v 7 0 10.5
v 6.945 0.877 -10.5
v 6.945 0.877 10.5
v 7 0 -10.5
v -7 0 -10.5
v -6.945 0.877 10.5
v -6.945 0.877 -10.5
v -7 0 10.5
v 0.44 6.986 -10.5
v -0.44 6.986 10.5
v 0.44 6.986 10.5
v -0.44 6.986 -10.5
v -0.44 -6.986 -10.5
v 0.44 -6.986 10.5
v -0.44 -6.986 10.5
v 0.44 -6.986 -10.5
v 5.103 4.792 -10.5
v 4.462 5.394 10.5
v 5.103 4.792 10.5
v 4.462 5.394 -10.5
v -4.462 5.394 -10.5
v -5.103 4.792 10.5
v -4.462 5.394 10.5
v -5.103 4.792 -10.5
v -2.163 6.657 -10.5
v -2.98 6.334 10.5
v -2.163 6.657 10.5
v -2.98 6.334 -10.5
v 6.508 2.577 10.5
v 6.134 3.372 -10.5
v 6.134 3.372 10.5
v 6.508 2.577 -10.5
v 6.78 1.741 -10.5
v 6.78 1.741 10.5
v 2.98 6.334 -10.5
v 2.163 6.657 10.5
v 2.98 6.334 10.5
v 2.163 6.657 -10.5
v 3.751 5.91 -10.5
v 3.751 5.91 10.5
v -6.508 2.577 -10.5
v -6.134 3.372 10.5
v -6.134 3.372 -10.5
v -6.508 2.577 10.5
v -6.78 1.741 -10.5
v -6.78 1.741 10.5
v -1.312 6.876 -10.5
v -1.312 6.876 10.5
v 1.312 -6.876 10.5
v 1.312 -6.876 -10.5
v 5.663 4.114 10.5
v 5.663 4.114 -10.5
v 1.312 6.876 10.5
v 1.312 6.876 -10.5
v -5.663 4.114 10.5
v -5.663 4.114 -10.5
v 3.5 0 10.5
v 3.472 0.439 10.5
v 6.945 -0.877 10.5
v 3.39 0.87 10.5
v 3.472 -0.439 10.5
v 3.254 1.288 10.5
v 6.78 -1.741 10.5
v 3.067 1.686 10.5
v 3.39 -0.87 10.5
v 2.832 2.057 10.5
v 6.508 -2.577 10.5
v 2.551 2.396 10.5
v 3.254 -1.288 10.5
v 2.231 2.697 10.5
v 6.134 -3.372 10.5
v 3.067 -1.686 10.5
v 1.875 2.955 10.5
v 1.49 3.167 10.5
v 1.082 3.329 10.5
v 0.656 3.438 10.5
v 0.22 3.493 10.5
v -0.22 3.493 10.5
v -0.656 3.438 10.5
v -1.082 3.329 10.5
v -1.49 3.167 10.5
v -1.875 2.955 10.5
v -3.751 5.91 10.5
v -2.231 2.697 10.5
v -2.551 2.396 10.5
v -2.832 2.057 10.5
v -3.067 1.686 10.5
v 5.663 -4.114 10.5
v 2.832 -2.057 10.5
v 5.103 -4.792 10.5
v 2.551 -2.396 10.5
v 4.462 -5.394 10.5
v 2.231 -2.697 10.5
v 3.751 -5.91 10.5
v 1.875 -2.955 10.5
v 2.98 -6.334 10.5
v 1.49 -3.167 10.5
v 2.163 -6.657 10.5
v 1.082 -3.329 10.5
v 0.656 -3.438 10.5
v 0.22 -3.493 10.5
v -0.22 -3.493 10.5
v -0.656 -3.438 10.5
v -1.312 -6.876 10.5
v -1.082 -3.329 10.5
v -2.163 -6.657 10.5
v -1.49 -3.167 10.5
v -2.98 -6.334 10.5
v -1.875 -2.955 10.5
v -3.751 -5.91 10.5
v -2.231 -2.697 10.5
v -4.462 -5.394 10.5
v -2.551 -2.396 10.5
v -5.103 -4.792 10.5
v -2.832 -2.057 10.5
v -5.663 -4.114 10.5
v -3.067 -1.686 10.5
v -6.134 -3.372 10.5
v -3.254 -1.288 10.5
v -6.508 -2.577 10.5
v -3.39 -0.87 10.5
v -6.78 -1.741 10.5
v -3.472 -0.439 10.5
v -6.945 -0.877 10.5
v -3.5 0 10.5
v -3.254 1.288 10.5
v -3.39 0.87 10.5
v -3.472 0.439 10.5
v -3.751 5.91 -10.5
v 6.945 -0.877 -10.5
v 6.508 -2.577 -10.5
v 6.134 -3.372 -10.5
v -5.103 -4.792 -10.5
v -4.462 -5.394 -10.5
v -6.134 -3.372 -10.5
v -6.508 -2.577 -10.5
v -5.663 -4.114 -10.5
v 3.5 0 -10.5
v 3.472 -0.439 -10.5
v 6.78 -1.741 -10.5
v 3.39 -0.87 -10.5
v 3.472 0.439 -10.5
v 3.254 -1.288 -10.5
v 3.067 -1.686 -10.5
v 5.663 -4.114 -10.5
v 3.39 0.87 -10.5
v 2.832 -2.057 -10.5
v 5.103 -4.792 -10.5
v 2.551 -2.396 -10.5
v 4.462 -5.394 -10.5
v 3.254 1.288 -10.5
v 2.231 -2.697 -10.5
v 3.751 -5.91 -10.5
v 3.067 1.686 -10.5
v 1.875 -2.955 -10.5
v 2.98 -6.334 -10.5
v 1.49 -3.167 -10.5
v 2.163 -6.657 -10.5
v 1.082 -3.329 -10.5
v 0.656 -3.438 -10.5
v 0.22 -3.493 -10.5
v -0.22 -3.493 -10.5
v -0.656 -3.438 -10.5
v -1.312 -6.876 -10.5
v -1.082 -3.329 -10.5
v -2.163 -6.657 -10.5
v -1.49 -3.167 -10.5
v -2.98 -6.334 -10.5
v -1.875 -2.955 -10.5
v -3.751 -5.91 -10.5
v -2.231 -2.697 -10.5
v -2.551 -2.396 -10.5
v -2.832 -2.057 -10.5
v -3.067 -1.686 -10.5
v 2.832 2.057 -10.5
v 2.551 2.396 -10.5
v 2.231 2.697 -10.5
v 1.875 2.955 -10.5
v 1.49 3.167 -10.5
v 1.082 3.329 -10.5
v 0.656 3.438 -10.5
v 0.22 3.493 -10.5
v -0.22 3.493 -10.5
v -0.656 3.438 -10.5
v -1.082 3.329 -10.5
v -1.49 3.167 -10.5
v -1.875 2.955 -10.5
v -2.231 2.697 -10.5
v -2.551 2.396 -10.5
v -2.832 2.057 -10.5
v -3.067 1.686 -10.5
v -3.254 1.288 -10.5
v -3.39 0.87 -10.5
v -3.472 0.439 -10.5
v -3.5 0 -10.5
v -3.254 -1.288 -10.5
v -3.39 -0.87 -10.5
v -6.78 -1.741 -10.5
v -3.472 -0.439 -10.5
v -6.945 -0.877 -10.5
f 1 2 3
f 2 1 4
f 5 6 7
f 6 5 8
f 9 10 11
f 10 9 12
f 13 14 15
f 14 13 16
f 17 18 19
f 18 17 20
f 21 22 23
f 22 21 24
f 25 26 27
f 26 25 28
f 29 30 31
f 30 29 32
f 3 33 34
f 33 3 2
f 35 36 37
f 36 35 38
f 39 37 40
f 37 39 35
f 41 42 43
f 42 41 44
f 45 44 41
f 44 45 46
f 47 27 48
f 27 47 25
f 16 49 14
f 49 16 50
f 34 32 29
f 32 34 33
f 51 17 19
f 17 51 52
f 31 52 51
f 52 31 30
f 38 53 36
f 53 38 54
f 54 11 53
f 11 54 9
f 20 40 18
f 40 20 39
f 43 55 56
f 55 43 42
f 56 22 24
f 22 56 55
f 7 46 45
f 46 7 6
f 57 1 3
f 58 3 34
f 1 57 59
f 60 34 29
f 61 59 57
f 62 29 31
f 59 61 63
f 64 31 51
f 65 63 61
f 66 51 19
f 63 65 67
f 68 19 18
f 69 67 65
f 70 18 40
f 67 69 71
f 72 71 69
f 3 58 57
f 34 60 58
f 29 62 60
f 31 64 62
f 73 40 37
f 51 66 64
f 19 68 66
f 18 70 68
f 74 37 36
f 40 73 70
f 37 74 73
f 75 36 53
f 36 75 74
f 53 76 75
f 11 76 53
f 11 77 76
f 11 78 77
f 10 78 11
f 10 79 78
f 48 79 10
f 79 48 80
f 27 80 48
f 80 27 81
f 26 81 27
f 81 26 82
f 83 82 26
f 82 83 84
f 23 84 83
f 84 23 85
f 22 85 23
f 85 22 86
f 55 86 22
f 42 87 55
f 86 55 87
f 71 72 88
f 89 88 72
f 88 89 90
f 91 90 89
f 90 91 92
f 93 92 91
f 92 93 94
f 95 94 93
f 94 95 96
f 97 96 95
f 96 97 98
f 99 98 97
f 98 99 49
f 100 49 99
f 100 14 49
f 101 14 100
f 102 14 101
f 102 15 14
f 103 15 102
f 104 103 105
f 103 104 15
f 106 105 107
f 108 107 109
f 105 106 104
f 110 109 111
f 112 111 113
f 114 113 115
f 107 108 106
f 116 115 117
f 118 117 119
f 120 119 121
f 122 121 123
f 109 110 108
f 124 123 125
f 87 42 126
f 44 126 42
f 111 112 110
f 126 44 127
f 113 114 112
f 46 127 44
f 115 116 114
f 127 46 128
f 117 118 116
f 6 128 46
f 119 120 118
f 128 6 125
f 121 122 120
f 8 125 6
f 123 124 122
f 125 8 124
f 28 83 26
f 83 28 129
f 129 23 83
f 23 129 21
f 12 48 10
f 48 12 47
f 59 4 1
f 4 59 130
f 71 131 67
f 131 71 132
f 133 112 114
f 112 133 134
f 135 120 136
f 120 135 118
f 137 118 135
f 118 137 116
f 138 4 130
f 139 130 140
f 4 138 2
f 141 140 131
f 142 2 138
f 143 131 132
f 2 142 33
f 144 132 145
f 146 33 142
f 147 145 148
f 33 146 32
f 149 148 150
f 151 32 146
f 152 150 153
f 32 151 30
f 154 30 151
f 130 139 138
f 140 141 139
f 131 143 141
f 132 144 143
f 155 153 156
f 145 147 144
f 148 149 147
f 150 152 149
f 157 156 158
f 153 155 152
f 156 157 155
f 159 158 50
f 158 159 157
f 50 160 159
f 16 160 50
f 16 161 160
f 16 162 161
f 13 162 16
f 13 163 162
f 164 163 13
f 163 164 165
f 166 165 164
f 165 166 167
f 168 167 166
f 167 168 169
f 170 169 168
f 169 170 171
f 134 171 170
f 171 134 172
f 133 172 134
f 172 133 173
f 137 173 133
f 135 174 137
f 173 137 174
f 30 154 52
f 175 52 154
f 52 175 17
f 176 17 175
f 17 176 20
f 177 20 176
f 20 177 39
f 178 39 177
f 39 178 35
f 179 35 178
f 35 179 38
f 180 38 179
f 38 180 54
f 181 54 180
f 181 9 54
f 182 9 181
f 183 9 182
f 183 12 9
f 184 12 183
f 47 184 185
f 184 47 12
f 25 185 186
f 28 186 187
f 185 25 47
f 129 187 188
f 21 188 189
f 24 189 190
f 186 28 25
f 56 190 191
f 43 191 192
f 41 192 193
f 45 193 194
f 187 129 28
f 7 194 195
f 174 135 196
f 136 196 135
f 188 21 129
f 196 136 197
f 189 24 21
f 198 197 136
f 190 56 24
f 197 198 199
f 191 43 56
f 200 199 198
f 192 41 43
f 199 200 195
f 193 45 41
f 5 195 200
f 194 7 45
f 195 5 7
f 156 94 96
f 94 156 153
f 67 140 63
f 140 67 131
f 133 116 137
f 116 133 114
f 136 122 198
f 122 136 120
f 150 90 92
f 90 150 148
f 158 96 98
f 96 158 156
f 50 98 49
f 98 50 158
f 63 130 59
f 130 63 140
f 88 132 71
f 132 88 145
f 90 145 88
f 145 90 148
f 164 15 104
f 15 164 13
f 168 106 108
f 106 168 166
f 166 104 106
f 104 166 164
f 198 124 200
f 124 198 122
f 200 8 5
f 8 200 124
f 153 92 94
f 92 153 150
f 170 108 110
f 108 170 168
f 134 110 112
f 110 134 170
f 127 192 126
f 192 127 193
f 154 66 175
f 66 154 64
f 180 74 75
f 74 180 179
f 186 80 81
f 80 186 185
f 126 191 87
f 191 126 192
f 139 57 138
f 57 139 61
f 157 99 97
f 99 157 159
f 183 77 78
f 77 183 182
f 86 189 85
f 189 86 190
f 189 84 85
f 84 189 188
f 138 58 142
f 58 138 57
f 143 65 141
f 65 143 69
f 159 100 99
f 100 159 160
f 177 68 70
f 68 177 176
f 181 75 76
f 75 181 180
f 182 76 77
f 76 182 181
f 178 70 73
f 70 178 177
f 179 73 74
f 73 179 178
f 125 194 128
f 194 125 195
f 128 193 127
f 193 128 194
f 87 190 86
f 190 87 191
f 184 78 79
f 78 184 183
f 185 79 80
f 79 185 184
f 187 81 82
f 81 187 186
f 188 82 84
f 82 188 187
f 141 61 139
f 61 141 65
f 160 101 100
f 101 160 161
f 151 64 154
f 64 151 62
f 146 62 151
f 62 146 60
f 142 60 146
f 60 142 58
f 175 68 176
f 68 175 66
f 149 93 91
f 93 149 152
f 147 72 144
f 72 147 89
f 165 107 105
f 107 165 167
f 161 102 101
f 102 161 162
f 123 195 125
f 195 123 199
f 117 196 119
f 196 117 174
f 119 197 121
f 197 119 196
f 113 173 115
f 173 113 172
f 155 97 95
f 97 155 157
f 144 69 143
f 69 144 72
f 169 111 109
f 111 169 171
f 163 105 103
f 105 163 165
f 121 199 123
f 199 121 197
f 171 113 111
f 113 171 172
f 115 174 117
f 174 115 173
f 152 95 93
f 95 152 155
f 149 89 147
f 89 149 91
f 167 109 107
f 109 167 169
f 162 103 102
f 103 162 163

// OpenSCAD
$fn = 50;


difference() {
	union() {
		translate(v = [0, 0, -10.5000000000]) {
			cylinder(h = 21, r = 7.0000000000);
		}
	}
	union() {
		translate(v = [0, 0, -100.0000000000]) {
			cylinder(h = 200, r = 3.5000000000);
		}
	}
}
